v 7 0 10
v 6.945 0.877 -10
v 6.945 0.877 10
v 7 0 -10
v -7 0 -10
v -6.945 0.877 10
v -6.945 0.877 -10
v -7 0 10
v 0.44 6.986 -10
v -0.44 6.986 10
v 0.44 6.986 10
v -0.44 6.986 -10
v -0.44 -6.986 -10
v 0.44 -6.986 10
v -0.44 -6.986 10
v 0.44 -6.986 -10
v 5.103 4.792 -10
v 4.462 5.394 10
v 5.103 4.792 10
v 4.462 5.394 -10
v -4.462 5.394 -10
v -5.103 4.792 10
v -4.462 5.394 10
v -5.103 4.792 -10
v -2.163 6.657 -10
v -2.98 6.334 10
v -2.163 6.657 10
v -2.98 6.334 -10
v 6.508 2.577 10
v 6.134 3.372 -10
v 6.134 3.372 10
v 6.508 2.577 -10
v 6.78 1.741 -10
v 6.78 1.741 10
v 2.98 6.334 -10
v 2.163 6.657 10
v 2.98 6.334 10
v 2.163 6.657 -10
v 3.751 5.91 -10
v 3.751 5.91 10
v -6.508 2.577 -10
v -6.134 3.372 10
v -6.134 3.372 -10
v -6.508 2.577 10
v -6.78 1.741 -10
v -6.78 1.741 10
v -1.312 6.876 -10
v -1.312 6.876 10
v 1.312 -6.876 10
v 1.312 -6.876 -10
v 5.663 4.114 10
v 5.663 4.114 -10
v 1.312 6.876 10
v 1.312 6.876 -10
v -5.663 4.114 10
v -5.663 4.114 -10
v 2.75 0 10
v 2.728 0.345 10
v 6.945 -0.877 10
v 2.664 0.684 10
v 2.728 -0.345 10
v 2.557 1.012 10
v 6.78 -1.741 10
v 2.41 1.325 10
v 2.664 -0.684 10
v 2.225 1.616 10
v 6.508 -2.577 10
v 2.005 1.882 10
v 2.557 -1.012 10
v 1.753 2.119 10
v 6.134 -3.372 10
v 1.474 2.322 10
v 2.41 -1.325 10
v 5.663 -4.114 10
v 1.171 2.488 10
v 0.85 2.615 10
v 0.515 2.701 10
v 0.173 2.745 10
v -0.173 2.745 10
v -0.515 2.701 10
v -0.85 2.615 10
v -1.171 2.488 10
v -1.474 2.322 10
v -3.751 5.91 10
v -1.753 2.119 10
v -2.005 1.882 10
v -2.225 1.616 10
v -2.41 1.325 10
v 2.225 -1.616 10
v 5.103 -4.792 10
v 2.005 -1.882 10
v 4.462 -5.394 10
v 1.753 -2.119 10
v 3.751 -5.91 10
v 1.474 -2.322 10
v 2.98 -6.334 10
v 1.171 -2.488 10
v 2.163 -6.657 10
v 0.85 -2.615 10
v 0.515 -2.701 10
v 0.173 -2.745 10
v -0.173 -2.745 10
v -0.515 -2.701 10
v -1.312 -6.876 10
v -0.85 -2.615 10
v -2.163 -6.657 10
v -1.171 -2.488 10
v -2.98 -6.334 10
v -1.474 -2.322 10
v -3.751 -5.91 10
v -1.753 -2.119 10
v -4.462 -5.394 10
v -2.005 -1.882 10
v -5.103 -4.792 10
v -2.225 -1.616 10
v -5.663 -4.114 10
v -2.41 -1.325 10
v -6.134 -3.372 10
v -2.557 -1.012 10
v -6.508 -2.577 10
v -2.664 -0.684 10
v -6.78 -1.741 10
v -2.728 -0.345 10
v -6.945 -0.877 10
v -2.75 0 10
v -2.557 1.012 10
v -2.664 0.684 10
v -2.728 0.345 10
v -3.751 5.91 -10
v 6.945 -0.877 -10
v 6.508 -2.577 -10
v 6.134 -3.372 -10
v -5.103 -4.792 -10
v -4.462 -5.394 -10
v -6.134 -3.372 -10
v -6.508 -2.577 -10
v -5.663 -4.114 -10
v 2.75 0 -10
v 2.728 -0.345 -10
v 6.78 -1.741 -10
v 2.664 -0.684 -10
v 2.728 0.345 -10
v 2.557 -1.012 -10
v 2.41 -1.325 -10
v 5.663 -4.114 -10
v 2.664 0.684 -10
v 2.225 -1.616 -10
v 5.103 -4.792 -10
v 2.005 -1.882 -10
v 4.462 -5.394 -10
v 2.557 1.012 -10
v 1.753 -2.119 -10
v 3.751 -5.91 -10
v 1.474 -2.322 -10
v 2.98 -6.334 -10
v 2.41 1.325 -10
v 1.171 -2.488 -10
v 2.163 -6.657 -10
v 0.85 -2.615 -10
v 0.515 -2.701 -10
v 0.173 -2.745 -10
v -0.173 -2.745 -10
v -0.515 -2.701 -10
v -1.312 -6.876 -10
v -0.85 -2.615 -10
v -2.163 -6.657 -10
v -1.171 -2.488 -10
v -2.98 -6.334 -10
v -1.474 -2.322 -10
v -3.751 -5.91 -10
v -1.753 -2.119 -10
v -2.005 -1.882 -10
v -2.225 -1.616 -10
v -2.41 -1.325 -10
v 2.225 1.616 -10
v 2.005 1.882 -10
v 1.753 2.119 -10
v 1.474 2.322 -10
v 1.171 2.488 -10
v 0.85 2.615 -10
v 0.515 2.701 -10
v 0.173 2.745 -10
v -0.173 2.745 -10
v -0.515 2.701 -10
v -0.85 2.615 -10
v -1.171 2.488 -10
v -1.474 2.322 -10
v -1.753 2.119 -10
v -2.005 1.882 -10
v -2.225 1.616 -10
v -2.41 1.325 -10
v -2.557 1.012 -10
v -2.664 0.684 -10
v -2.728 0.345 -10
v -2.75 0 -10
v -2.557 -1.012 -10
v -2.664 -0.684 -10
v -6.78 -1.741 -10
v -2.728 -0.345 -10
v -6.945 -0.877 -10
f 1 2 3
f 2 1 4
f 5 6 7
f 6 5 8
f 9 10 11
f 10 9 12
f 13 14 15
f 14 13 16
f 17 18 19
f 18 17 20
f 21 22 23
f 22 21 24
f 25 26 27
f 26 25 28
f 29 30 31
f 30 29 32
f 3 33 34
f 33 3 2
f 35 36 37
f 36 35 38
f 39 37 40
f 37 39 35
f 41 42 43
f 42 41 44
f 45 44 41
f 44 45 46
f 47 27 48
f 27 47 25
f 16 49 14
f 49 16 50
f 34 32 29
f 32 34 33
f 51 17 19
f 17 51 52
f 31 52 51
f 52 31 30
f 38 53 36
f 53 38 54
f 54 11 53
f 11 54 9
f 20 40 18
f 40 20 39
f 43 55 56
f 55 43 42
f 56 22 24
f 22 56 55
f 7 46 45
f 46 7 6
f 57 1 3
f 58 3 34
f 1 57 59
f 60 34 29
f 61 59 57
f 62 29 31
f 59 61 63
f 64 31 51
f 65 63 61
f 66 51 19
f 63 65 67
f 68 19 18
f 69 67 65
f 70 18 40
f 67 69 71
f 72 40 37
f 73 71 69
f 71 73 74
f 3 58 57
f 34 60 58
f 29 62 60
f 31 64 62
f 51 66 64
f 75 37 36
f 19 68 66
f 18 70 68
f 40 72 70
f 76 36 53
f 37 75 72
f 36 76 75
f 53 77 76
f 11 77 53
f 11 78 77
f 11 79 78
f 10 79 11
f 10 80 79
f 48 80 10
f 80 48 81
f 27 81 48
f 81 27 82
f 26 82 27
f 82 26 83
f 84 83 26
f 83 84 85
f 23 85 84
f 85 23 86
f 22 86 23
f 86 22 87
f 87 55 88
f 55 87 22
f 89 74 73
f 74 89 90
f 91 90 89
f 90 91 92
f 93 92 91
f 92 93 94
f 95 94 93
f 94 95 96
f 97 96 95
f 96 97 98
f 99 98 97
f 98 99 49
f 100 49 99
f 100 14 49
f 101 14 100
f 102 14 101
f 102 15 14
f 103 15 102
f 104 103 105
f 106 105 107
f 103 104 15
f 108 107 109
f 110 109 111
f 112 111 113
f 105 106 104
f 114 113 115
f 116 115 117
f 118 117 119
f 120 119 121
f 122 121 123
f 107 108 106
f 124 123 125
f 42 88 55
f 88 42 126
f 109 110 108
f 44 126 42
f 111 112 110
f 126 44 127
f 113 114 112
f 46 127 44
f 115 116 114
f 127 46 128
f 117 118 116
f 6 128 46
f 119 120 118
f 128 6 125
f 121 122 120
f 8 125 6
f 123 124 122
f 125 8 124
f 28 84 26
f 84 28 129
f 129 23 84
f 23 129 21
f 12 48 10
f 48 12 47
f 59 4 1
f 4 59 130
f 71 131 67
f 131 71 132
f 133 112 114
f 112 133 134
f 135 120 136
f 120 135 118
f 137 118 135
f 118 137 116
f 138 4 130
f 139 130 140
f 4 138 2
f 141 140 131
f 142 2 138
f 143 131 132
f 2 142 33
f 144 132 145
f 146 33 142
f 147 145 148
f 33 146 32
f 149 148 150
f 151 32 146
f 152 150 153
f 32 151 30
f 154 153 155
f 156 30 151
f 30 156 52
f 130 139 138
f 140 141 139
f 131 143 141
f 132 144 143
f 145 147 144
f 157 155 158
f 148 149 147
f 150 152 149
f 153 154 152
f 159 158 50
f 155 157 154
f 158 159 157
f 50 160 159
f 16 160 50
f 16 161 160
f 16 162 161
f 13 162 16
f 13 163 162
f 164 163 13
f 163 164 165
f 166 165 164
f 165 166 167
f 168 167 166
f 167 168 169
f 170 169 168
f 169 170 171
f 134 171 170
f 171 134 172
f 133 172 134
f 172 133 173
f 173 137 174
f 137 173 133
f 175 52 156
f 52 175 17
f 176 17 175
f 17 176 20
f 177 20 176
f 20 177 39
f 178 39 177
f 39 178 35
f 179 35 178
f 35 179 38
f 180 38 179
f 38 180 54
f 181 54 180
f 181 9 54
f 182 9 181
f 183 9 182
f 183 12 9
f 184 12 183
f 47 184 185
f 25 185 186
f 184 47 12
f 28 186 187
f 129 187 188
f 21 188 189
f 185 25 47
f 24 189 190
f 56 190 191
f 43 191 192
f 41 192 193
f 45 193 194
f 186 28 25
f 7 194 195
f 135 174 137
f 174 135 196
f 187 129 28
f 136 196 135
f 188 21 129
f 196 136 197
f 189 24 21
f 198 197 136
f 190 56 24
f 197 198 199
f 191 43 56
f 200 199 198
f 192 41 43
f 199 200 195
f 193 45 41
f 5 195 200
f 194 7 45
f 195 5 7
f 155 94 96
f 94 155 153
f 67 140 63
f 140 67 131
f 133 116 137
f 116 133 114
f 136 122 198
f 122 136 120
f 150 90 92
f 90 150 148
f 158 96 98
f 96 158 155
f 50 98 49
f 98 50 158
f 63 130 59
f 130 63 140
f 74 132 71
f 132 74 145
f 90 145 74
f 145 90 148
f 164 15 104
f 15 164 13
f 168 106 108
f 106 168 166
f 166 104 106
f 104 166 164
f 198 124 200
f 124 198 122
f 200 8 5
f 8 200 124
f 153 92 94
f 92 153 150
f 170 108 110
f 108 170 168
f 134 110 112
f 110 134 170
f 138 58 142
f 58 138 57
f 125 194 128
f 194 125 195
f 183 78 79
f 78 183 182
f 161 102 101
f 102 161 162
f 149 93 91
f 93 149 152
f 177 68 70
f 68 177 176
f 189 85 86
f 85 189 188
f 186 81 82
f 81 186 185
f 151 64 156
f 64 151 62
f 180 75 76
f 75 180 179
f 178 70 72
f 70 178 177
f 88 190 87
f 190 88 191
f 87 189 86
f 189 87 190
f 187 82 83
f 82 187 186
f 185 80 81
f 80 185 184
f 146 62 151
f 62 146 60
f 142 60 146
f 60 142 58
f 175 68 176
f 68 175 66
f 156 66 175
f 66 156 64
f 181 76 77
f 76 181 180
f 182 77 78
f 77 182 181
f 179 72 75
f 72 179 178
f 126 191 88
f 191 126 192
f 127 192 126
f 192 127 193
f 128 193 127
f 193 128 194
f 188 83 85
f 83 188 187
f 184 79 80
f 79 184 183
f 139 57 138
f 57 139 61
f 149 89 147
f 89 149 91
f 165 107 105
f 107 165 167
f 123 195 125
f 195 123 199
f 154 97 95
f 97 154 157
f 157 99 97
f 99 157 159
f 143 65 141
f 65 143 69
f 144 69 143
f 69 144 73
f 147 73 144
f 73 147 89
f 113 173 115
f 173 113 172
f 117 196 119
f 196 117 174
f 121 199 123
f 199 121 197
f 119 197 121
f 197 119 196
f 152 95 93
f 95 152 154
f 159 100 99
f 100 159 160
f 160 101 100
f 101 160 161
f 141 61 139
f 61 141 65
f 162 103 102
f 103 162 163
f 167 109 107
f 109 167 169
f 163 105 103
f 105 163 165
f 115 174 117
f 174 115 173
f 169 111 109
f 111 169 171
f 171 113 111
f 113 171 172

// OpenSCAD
$fn = 50;


difference() {
	union() {
		translate(v = [0, 0, -10.0000000000]) {
			cylinder(h = 20, r = 7.0000000000);
		}
	}
	union() {
		translate(v = [0, 0, -100.0000000000]) {
			cylinder(h = 200, r = 2.7500000000);
		}
	}
}
